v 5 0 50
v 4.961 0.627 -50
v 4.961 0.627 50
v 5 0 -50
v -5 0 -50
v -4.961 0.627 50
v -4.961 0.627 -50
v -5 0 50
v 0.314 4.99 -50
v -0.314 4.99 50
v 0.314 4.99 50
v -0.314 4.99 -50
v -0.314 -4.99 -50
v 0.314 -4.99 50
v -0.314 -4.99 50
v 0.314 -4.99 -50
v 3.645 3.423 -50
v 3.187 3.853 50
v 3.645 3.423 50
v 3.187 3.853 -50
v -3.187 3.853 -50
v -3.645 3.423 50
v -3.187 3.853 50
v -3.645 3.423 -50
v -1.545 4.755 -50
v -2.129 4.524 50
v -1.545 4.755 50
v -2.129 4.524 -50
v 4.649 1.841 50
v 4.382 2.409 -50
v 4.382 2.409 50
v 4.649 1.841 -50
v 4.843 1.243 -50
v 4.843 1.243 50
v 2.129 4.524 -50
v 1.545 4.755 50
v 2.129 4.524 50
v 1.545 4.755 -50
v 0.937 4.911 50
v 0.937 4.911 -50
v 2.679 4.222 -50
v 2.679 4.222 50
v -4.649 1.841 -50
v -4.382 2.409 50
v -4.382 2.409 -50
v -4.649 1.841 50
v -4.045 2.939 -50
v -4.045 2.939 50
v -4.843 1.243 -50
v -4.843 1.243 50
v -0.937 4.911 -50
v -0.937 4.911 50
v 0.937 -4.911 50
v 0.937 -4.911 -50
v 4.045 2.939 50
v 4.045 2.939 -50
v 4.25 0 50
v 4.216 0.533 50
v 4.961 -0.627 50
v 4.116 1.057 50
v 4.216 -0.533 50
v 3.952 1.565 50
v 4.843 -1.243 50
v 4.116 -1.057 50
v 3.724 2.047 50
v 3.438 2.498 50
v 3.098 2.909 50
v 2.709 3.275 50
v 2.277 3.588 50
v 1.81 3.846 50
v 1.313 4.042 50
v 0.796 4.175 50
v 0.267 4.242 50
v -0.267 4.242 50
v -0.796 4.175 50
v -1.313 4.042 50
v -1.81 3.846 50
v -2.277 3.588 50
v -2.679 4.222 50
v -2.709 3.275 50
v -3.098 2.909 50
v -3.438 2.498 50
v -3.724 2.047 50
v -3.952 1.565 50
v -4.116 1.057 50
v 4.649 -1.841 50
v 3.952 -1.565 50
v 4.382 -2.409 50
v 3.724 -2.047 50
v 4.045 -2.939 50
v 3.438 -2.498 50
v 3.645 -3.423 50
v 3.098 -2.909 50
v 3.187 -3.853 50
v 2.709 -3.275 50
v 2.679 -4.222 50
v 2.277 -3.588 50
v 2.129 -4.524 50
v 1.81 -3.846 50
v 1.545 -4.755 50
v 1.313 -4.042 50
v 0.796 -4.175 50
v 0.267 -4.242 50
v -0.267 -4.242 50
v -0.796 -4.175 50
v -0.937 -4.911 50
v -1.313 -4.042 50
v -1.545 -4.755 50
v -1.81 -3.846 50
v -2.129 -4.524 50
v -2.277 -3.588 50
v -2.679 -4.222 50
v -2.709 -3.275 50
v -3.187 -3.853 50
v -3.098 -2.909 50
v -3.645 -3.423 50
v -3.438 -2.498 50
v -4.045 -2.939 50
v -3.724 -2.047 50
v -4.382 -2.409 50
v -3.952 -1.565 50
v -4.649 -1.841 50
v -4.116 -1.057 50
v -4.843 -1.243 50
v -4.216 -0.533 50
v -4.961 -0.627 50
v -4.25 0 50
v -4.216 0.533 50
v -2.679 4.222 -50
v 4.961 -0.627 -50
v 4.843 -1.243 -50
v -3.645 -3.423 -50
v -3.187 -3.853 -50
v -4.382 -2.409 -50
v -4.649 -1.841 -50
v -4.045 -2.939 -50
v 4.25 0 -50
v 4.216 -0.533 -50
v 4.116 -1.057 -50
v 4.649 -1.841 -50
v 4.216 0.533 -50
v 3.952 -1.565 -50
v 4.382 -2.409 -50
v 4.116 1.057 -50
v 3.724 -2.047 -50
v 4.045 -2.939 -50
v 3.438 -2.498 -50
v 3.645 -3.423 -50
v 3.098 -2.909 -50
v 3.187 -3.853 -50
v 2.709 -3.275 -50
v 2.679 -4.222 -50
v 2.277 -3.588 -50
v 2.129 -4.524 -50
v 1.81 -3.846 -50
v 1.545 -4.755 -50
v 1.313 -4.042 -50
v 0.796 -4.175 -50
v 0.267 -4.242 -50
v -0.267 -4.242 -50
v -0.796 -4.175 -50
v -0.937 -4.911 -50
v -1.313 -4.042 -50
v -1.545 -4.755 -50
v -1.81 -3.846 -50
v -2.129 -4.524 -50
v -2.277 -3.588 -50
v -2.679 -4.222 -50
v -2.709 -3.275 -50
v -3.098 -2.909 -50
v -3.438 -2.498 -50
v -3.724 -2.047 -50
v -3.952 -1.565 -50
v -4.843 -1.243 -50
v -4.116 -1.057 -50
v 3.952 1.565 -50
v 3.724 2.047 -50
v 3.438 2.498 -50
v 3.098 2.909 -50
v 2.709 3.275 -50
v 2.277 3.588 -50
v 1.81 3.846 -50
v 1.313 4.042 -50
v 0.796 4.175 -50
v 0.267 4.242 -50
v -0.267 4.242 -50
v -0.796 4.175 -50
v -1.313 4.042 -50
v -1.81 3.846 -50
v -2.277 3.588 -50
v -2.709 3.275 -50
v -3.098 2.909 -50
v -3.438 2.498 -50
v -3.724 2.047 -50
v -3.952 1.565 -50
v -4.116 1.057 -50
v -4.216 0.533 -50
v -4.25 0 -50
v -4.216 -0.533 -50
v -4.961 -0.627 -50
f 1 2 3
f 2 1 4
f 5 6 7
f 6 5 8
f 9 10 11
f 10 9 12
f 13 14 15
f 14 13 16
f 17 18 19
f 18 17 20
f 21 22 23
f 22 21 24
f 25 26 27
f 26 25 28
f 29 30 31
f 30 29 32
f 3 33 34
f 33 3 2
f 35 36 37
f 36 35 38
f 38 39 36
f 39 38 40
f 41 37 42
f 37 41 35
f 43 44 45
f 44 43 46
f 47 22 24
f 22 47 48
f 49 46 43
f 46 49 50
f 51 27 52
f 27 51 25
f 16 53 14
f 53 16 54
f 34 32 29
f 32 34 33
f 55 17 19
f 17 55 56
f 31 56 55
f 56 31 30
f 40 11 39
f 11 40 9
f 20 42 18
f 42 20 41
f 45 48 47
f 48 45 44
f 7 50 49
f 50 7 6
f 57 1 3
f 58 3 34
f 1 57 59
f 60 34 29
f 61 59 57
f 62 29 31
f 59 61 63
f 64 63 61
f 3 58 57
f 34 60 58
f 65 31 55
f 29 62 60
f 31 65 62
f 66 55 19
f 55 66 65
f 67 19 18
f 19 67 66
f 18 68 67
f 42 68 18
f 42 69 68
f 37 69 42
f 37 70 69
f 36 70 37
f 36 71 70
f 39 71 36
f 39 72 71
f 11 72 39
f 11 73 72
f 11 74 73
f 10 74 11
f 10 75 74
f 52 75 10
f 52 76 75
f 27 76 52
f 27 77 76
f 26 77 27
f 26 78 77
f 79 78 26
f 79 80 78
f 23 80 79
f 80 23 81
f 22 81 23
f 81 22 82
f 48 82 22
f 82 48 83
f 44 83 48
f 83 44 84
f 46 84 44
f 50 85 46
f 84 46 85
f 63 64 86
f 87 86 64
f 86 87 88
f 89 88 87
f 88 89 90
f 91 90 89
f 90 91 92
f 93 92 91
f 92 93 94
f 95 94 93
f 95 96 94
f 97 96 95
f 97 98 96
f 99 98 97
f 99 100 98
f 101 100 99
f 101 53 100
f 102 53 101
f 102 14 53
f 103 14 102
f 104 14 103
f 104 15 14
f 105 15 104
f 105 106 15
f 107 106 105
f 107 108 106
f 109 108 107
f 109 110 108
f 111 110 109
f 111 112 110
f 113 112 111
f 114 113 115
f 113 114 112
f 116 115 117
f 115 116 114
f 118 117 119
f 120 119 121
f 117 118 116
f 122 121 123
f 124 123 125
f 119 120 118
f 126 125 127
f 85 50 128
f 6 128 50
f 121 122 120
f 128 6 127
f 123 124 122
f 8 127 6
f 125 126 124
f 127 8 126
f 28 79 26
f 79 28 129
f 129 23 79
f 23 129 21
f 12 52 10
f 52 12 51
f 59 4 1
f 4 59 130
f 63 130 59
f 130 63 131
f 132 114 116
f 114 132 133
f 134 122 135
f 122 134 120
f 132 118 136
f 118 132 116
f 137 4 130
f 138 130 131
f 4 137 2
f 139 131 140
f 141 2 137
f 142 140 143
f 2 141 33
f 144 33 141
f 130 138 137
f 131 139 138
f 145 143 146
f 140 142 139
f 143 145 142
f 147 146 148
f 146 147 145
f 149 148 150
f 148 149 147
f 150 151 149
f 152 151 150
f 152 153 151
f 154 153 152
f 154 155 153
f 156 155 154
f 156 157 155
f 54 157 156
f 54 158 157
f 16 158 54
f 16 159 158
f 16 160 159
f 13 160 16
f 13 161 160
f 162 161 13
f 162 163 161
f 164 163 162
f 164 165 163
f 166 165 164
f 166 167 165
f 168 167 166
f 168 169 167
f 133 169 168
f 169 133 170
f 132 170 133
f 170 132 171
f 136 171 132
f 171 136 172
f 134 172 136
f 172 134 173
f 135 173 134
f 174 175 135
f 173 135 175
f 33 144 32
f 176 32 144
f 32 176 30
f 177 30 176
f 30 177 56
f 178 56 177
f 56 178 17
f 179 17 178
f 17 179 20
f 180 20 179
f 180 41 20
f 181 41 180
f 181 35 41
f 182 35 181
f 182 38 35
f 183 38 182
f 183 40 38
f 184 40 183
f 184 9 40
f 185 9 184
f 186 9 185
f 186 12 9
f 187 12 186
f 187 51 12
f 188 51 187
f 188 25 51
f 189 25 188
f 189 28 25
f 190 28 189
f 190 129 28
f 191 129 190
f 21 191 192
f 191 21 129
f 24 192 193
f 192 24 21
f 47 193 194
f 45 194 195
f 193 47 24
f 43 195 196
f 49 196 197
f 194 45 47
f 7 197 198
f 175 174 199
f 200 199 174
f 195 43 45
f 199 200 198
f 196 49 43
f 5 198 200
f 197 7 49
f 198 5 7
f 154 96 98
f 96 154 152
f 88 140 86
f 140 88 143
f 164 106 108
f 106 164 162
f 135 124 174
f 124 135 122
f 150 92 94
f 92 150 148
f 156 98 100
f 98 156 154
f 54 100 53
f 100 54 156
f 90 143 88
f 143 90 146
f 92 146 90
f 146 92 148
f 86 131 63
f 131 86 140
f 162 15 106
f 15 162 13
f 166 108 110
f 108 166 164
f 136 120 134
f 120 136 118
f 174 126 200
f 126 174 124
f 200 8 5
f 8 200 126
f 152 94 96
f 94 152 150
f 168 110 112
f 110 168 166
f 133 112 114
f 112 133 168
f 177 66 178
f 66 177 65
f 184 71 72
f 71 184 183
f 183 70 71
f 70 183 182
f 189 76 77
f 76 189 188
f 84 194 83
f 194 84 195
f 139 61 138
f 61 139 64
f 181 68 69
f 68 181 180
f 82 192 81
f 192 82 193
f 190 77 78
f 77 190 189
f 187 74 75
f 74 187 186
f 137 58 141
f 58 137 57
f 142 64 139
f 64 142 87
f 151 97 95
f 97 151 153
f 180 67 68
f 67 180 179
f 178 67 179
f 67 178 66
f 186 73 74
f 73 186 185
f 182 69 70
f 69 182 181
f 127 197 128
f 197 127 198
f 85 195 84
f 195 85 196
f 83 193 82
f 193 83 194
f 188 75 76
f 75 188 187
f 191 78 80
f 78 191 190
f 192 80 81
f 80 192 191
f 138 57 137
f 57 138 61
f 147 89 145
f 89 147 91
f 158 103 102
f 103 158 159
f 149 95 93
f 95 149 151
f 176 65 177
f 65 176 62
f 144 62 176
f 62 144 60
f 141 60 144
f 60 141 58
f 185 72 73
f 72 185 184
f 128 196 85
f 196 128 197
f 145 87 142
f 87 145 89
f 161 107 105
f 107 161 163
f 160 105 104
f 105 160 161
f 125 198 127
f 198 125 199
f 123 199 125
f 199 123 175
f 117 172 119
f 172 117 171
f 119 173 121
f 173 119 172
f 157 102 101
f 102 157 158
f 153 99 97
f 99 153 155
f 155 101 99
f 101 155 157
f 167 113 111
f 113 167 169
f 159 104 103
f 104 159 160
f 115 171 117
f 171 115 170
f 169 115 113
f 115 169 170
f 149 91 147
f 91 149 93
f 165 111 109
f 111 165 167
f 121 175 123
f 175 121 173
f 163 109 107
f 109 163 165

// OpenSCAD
$fn = 50;


difference() {
	union() {
		translate(v = [0, 0, -50.0000000000]) {
			cylinder(h = 100, r = 5.0000000000);
		}
	}
	union() {
		translate(v = [0, 0, -100.0000000000]) {
			cylinder(h = 200, r = 4.2500000000);
		}
	}
}
